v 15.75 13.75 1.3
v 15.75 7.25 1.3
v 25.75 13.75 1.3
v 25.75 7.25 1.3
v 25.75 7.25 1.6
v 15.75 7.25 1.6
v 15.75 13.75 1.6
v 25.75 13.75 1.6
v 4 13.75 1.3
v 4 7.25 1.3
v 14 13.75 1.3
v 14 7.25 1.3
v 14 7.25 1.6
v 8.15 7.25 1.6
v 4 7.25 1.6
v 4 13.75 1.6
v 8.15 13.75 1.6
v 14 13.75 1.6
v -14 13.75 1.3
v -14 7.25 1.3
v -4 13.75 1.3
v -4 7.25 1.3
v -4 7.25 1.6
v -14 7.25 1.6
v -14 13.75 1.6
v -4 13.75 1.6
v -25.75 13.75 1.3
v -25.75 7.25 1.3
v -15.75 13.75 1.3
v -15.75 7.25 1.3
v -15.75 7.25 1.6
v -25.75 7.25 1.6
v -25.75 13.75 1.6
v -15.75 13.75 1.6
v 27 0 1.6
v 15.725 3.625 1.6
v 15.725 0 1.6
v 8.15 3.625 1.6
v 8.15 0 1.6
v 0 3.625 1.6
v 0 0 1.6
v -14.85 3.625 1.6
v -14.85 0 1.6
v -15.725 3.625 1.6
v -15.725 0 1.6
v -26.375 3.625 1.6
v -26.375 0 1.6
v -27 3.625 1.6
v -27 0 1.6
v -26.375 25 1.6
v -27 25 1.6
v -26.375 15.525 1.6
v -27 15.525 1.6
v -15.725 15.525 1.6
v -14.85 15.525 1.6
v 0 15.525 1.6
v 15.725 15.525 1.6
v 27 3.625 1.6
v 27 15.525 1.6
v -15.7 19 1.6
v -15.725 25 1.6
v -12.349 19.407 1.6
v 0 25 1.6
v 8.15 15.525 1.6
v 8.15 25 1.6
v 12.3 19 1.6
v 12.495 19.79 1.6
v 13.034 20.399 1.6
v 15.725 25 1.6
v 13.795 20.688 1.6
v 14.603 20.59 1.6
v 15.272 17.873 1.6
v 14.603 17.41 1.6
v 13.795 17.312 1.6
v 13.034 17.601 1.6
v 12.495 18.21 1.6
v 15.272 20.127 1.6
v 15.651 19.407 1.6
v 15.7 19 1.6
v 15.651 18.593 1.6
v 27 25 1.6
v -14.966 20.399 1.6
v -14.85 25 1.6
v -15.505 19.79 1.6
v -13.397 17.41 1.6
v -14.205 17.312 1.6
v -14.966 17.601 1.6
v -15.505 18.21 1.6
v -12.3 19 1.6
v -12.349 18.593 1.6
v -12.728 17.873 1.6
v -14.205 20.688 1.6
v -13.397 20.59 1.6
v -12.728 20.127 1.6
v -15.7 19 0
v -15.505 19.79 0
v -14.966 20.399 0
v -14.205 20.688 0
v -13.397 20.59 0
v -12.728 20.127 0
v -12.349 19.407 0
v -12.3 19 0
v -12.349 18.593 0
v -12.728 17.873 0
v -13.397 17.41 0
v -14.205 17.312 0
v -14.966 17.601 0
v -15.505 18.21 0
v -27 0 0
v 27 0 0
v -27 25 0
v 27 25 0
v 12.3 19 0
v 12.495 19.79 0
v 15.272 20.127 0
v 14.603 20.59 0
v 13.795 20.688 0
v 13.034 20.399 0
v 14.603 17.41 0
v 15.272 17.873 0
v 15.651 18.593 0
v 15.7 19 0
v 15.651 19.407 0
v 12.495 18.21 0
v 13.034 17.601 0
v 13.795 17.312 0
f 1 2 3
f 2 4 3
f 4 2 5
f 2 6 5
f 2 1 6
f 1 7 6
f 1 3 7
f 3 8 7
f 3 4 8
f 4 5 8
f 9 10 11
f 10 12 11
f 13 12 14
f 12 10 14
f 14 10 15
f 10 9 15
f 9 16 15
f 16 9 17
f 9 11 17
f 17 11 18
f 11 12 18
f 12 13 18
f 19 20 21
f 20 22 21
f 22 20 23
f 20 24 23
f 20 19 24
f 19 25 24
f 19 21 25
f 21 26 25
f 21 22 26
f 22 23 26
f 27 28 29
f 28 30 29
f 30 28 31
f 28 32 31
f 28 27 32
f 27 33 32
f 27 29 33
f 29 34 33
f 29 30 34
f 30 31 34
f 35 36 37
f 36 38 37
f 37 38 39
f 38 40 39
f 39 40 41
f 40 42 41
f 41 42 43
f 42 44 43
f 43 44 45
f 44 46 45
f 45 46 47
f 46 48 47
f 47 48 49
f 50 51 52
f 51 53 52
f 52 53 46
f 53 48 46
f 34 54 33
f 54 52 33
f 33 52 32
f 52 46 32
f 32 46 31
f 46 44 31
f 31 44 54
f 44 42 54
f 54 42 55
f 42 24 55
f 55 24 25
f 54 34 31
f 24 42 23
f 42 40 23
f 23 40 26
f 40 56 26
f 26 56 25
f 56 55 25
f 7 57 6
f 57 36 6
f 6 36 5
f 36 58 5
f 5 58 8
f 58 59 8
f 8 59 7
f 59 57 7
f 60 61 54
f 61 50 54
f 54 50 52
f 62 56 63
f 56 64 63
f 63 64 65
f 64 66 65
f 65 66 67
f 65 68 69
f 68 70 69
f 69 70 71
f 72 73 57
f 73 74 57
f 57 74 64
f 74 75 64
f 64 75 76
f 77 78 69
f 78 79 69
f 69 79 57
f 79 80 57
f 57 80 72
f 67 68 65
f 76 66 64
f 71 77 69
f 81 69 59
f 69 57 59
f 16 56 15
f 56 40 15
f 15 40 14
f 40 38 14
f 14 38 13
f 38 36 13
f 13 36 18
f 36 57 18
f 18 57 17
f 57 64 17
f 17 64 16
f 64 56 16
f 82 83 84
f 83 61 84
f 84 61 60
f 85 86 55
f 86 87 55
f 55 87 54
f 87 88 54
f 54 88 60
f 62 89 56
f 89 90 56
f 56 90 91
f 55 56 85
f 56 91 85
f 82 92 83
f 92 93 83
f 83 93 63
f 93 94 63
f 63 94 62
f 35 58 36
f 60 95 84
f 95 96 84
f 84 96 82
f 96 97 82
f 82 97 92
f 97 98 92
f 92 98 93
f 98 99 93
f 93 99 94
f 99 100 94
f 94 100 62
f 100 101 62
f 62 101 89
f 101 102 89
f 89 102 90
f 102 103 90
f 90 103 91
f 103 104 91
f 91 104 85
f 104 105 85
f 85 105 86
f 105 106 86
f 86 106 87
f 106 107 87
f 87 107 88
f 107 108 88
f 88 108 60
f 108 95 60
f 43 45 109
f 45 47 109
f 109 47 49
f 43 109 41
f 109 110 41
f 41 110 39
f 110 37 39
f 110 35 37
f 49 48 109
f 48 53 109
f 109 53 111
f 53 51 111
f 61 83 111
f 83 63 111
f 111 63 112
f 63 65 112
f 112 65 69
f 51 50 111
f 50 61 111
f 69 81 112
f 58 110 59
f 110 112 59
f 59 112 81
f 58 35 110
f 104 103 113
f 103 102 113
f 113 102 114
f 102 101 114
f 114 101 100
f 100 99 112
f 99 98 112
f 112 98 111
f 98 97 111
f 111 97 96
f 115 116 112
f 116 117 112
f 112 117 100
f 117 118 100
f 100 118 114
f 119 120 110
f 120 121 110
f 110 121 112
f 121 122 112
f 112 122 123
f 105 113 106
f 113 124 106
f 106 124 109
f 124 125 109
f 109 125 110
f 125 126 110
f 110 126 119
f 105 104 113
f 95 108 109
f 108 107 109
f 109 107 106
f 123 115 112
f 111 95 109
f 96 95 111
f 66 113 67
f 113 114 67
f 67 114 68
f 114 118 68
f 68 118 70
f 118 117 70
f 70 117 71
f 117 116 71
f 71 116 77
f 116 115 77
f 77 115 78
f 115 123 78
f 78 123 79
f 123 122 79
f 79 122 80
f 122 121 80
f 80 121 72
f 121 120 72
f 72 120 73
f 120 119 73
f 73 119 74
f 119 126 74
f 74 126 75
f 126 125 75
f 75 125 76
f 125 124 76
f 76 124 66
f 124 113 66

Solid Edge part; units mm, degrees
sketch "Sketch1" plane through (0, 0, 0) normal (0, 0, 1) x (1, 0, 0)
  line L0 (27, 25) -> (-27, 25)
  line L1 (-27, 25) -> (-27, 0)
  line L2 (-27, 0) -> (27, 0)
  line L3 (27, 0) -> (27, 25)
  circle A0 centre (14, 19) radius 1.7
  circle A1 centre (-14, 19) radius 1.7
  dimension "D1" = 25
  dimension "D2" = 54
  dimension "D3" = 6
  dimension "D4" = 28
  dimension "D5" = 3.4
extrude "Protrusion1" add sketch "Sketch1" along normal blind 1.6
sketch "Sketch2" plane through (0, 12.5, 1.6) normal (0, 0, 1) x (1, 0, 0)
  line L0 (-15.75, 1.25) -> (-25.75, 1.25)
  line L1 (-25.75, 1.25) -> (-25.75, -5.25)
  line L2 (-25.75, -5.25) -> (-15.75, -5.25)
  line L3 (-15.75, -5.25) -> (-15.75, 1.25)
  line L4 (-4, 1.25) -> (-14, 1.25)
  line L5 (-14, 1.25) -> (-14, -5.25)
  line L6 (-14, -5.25) -> (-4, -5.25)
  line L7 (-4, -5.25) -> (-4, 1.25)
  line L8 (14, 1.25) -> (4, 1.25)
  line L9 (4, 1.25) -> (4, -5.25)
  line L10 (4, -5.25) -> (14, -5.25)
  line L11 (14, -5.25) -> (14, 1.25)
  line L12 (25.75, 1.25) -> (15.75, 1.25)
  line L13 (15.75, 1.25) -> (15.75, -5.25)
  line L14 (15.75, -5.25) -> (25.75, -5.25)
  line L15 (25.75, -5.25) -> (25.75, 1.25)
  dimension "D1" = 14.5
  dimension "D2" = 10
  dimension "D3" = 6.5
  dimension "D4" = 18
  dimension "D5" = 41.5
extrude "Buttons" cut sketch "Sketch2" against normal blind 0.3
